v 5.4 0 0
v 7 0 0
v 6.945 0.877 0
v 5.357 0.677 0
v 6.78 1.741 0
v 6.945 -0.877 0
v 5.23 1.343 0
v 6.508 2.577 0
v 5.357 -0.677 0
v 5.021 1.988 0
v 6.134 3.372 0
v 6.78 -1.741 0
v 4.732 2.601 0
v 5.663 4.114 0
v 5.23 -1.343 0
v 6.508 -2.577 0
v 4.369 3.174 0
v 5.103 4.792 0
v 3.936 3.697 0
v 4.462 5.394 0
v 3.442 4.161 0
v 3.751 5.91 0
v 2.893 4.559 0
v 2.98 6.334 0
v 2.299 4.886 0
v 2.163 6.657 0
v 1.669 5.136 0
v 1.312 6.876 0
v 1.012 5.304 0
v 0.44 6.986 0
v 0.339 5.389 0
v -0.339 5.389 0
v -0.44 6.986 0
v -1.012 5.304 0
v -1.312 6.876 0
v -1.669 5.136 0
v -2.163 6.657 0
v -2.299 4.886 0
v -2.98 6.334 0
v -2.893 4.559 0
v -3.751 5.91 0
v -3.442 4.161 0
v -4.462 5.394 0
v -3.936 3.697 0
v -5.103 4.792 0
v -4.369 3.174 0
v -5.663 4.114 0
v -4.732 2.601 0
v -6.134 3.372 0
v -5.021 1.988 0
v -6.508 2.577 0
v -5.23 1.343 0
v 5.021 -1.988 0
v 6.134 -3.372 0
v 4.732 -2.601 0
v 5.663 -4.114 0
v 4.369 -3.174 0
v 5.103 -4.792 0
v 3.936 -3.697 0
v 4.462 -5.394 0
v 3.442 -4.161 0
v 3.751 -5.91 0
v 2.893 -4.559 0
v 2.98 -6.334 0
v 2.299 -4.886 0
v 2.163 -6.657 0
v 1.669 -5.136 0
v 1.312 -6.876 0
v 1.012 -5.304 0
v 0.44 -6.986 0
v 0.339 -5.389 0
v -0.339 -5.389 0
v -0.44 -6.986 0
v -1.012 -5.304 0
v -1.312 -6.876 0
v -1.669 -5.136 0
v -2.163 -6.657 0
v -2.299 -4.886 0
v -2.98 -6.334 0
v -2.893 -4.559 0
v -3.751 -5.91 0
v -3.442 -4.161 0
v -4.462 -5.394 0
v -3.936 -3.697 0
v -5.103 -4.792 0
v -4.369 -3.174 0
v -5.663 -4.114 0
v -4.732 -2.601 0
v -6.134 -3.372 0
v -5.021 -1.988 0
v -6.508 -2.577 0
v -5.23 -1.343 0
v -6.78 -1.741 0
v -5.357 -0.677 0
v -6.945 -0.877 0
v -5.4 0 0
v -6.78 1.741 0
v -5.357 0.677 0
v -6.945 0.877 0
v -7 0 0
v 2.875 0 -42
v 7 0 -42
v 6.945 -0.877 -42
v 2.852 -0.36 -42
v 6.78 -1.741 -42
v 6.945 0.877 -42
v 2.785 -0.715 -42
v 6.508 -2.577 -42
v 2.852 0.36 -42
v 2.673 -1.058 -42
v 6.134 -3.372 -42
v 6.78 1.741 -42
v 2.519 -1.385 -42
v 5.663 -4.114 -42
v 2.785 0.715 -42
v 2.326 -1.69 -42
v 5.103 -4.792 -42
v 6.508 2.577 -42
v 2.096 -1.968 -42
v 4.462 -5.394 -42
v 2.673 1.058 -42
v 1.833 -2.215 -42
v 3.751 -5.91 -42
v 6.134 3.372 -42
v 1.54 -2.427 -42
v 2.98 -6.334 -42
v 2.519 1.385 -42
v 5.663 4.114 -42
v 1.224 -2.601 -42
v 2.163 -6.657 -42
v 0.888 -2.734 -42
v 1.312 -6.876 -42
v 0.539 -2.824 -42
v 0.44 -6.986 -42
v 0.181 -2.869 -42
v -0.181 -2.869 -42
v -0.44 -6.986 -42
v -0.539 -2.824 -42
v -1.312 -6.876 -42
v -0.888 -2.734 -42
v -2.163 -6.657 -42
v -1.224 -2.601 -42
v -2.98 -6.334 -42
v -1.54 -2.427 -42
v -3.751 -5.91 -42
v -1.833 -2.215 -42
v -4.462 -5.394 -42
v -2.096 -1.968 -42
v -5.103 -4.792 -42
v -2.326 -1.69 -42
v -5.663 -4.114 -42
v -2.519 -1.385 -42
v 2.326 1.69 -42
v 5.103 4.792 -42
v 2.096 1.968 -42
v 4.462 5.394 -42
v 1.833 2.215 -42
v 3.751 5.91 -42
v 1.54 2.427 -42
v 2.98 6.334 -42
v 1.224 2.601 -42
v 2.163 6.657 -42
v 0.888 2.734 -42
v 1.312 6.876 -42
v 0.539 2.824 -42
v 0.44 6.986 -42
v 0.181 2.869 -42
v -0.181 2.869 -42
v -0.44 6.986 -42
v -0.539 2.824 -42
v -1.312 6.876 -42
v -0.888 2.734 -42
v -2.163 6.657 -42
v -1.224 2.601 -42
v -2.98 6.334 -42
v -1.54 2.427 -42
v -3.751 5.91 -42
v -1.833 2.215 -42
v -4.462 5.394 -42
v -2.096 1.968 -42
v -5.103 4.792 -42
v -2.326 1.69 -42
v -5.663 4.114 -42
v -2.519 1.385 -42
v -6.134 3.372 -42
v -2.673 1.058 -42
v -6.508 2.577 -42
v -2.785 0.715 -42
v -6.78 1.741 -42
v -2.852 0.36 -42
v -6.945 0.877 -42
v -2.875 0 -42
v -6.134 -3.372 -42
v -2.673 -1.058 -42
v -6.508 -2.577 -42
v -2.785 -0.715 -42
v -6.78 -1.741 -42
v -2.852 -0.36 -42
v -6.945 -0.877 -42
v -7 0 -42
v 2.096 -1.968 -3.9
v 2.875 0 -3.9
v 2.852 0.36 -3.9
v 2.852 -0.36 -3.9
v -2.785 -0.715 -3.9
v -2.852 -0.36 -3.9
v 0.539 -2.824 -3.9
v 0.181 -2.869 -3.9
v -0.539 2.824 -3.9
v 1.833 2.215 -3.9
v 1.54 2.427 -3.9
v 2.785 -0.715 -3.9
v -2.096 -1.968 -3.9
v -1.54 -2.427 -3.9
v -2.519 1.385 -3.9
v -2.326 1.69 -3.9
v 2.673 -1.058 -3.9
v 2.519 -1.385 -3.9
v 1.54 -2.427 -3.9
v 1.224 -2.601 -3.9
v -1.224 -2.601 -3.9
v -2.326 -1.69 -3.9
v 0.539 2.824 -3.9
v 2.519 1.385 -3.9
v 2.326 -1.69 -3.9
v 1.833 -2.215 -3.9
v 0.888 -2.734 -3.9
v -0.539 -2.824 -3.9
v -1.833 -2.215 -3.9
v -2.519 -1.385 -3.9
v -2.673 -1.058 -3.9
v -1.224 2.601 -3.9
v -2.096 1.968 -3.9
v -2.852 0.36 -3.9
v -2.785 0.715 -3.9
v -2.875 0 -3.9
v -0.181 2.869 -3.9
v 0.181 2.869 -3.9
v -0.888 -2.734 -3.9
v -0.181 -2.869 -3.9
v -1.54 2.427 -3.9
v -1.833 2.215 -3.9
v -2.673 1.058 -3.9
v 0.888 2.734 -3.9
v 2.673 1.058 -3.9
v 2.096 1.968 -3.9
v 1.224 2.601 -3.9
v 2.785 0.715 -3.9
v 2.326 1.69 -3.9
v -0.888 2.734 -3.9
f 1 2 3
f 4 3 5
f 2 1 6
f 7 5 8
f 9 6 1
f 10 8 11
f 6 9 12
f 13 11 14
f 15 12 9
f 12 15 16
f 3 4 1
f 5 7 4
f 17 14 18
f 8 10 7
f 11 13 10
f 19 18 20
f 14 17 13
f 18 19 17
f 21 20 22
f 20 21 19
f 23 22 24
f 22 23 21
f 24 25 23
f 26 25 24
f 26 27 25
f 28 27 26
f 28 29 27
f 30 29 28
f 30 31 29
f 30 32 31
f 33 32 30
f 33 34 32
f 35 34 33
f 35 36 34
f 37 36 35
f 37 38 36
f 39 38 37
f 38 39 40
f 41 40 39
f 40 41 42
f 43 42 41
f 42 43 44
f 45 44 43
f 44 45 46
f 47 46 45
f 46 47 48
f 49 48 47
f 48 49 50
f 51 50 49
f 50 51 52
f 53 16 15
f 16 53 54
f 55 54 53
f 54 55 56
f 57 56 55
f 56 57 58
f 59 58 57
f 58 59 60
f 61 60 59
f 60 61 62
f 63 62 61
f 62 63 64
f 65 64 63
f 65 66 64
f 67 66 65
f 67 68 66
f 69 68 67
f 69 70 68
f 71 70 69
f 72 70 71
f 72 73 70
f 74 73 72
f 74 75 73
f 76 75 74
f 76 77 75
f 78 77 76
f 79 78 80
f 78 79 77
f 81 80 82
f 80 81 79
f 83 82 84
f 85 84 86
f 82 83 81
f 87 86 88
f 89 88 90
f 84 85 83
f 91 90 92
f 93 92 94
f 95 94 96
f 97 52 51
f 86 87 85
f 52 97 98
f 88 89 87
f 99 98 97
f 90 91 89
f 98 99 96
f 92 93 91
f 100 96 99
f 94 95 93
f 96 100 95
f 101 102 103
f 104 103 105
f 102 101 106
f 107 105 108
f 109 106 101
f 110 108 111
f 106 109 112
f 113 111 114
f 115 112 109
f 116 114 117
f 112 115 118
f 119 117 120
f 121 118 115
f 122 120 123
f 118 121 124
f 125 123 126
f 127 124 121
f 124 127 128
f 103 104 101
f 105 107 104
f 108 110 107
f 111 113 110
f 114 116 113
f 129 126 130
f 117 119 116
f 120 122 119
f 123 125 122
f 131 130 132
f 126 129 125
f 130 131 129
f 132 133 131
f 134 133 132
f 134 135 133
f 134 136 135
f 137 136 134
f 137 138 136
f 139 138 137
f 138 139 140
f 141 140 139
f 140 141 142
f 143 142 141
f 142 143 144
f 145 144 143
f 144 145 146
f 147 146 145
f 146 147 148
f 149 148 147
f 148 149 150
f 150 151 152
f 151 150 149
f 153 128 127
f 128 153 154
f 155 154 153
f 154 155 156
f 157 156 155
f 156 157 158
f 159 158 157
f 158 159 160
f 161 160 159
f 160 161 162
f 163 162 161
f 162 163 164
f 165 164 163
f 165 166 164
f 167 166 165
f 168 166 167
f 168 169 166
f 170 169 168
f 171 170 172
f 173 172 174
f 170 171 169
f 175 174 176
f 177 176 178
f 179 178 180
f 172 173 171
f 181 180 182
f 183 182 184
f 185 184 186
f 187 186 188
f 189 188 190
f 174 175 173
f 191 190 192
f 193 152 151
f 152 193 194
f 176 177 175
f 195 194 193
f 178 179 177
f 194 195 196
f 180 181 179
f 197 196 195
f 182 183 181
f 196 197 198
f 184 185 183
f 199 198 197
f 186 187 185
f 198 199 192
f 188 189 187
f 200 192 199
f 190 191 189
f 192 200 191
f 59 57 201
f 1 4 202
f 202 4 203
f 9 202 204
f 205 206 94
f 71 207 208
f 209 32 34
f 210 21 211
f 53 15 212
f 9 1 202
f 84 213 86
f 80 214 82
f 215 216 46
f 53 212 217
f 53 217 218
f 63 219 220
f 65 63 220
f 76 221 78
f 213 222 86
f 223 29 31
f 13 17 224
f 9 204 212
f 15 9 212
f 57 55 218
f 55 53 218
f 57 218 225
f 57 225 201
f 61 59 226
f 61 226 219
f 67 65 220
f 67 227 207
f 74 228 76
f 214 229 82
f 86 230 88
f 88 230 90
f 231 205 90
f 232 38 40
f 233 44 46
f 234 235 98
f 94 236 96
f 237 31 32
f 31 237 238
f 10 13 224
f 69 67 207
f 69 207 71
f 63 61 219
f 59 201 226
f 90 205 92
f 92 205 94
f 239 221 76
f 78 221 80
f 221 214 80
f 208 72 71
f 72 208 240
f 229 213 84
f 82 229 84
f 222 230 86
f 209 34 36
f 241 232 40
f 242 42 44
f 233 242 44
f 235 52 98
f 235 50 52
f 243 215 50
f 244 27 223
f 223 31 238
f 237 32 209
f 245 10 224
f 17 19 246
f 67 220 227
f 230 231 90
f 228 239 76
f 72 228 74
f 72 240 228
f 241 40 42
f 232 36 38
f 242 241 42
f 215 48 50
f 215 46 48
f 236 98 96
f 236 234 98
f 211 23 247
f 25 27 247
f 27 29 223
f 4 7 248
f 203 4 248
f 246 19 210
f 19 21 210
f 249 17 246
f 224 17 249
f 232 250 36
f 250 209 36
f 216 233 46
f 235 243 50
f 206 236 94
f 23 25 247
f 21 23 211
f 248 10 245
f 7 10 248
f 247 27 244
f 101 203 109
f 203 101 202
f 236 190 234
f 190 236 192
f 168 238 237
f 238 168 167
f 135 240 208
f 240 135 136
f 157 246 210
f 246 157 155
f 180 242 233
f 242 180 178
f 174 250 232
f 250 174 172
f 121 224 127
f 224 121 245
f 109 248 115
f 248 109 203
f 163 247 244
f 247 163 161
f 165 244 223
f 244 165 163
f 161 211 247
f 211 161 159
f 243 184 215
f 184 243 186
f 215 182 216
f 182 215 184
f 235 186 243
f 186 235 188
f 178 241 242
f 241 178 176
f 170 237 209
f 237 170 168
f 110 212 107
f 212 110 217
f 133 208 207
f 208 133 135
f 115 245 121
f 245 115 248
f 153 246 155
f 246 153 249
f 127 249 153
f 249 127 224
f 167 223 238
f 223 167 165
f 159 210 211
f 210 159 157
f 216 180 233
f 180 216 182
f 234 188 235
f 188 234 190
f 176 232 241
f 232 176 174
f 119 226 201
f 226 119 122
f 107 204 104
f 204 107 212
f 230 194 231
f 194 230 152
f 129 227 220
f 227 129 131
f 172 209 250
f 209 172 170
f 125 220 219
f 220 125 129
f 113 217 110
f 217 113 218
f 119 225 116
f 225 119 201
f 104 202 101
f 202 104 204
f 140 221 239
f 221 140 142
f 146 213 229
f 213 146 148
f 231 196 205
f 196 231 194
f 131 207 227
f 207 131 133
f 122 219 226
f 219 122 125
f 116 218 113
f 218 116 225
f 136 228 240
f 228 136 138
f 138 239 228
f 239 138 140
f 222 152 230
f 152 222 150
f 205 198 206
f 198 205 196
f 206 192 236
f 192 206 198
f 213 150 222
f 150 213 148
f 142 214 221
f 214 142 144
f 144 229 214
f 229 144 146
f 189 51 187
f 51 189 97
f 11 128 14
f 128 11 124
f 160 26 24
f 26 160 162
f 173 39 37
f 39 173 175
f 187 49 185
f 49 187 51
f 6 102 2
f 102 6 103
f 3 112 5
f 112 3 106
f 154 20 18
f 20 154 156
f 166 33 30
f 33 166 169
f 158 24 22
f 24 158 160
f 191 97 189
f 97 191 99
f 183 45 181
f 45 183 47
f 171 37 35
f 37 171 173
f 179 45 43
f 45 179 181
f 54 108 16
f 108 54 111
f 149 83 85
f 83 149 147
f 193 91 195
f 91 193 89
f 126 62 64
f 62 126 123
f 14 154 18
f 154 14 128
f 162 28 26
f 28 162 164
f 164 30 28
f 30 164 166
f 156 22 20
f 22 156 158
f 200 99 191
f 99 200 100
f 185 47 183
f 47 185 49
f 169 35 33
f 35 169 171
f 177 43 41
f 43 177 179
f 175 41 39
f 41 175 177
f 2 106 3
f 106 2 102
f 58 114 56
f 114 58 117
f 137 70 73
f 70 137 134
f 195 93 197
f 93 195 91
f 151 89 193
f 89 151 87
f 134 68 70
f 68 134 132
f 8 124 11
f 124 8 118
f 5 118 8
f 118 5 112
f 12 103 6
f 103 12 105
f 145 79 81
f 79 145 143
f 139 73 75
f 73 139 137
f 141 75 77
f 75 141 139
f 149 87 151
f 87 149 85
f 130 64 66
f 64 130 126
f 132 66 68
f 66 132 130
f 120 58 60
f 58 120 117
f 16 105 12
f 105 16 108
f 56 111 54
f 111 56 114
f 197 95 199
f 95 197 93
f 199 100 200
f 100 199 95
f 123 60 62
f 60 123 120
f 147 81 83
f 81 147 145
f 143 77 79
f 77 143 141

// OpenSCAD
$fn = 50;


difference() {
	union() {
		translate(v = [0, 0, -42.0000000000]) {
			cylinder(h = 42, r = 7.0000000000);
		}
		cylinder(h = 0, r = 16.0000000000);
	}
	union() {
		translate(v = [0, 0, 0]) {
			rotate(a = [0, 0, 0]) {
				difference() {
					union() {
						#translate(v = [0, 0, -42.0000000000]) {
							cylinder(h = 42, r = 2.6000000000);
						}
						#translate(v = [0, 0, -3.9000000000]) {
							cylinder(h = 3.9000000000, r1 = 2.8750000000, r2 = 5.4000000000);
						}
						#translate(v = [0, 0, -42.0000000000]) {
							cylinder(h = 42, r = 2.8750000000);
						}
						#translate(v = [0, 0, -42.0000000000]) {
							cylinder(h = 42, r = 2.6000000000);
						}
					}
					union();
				}
			}
		}
	}
}
